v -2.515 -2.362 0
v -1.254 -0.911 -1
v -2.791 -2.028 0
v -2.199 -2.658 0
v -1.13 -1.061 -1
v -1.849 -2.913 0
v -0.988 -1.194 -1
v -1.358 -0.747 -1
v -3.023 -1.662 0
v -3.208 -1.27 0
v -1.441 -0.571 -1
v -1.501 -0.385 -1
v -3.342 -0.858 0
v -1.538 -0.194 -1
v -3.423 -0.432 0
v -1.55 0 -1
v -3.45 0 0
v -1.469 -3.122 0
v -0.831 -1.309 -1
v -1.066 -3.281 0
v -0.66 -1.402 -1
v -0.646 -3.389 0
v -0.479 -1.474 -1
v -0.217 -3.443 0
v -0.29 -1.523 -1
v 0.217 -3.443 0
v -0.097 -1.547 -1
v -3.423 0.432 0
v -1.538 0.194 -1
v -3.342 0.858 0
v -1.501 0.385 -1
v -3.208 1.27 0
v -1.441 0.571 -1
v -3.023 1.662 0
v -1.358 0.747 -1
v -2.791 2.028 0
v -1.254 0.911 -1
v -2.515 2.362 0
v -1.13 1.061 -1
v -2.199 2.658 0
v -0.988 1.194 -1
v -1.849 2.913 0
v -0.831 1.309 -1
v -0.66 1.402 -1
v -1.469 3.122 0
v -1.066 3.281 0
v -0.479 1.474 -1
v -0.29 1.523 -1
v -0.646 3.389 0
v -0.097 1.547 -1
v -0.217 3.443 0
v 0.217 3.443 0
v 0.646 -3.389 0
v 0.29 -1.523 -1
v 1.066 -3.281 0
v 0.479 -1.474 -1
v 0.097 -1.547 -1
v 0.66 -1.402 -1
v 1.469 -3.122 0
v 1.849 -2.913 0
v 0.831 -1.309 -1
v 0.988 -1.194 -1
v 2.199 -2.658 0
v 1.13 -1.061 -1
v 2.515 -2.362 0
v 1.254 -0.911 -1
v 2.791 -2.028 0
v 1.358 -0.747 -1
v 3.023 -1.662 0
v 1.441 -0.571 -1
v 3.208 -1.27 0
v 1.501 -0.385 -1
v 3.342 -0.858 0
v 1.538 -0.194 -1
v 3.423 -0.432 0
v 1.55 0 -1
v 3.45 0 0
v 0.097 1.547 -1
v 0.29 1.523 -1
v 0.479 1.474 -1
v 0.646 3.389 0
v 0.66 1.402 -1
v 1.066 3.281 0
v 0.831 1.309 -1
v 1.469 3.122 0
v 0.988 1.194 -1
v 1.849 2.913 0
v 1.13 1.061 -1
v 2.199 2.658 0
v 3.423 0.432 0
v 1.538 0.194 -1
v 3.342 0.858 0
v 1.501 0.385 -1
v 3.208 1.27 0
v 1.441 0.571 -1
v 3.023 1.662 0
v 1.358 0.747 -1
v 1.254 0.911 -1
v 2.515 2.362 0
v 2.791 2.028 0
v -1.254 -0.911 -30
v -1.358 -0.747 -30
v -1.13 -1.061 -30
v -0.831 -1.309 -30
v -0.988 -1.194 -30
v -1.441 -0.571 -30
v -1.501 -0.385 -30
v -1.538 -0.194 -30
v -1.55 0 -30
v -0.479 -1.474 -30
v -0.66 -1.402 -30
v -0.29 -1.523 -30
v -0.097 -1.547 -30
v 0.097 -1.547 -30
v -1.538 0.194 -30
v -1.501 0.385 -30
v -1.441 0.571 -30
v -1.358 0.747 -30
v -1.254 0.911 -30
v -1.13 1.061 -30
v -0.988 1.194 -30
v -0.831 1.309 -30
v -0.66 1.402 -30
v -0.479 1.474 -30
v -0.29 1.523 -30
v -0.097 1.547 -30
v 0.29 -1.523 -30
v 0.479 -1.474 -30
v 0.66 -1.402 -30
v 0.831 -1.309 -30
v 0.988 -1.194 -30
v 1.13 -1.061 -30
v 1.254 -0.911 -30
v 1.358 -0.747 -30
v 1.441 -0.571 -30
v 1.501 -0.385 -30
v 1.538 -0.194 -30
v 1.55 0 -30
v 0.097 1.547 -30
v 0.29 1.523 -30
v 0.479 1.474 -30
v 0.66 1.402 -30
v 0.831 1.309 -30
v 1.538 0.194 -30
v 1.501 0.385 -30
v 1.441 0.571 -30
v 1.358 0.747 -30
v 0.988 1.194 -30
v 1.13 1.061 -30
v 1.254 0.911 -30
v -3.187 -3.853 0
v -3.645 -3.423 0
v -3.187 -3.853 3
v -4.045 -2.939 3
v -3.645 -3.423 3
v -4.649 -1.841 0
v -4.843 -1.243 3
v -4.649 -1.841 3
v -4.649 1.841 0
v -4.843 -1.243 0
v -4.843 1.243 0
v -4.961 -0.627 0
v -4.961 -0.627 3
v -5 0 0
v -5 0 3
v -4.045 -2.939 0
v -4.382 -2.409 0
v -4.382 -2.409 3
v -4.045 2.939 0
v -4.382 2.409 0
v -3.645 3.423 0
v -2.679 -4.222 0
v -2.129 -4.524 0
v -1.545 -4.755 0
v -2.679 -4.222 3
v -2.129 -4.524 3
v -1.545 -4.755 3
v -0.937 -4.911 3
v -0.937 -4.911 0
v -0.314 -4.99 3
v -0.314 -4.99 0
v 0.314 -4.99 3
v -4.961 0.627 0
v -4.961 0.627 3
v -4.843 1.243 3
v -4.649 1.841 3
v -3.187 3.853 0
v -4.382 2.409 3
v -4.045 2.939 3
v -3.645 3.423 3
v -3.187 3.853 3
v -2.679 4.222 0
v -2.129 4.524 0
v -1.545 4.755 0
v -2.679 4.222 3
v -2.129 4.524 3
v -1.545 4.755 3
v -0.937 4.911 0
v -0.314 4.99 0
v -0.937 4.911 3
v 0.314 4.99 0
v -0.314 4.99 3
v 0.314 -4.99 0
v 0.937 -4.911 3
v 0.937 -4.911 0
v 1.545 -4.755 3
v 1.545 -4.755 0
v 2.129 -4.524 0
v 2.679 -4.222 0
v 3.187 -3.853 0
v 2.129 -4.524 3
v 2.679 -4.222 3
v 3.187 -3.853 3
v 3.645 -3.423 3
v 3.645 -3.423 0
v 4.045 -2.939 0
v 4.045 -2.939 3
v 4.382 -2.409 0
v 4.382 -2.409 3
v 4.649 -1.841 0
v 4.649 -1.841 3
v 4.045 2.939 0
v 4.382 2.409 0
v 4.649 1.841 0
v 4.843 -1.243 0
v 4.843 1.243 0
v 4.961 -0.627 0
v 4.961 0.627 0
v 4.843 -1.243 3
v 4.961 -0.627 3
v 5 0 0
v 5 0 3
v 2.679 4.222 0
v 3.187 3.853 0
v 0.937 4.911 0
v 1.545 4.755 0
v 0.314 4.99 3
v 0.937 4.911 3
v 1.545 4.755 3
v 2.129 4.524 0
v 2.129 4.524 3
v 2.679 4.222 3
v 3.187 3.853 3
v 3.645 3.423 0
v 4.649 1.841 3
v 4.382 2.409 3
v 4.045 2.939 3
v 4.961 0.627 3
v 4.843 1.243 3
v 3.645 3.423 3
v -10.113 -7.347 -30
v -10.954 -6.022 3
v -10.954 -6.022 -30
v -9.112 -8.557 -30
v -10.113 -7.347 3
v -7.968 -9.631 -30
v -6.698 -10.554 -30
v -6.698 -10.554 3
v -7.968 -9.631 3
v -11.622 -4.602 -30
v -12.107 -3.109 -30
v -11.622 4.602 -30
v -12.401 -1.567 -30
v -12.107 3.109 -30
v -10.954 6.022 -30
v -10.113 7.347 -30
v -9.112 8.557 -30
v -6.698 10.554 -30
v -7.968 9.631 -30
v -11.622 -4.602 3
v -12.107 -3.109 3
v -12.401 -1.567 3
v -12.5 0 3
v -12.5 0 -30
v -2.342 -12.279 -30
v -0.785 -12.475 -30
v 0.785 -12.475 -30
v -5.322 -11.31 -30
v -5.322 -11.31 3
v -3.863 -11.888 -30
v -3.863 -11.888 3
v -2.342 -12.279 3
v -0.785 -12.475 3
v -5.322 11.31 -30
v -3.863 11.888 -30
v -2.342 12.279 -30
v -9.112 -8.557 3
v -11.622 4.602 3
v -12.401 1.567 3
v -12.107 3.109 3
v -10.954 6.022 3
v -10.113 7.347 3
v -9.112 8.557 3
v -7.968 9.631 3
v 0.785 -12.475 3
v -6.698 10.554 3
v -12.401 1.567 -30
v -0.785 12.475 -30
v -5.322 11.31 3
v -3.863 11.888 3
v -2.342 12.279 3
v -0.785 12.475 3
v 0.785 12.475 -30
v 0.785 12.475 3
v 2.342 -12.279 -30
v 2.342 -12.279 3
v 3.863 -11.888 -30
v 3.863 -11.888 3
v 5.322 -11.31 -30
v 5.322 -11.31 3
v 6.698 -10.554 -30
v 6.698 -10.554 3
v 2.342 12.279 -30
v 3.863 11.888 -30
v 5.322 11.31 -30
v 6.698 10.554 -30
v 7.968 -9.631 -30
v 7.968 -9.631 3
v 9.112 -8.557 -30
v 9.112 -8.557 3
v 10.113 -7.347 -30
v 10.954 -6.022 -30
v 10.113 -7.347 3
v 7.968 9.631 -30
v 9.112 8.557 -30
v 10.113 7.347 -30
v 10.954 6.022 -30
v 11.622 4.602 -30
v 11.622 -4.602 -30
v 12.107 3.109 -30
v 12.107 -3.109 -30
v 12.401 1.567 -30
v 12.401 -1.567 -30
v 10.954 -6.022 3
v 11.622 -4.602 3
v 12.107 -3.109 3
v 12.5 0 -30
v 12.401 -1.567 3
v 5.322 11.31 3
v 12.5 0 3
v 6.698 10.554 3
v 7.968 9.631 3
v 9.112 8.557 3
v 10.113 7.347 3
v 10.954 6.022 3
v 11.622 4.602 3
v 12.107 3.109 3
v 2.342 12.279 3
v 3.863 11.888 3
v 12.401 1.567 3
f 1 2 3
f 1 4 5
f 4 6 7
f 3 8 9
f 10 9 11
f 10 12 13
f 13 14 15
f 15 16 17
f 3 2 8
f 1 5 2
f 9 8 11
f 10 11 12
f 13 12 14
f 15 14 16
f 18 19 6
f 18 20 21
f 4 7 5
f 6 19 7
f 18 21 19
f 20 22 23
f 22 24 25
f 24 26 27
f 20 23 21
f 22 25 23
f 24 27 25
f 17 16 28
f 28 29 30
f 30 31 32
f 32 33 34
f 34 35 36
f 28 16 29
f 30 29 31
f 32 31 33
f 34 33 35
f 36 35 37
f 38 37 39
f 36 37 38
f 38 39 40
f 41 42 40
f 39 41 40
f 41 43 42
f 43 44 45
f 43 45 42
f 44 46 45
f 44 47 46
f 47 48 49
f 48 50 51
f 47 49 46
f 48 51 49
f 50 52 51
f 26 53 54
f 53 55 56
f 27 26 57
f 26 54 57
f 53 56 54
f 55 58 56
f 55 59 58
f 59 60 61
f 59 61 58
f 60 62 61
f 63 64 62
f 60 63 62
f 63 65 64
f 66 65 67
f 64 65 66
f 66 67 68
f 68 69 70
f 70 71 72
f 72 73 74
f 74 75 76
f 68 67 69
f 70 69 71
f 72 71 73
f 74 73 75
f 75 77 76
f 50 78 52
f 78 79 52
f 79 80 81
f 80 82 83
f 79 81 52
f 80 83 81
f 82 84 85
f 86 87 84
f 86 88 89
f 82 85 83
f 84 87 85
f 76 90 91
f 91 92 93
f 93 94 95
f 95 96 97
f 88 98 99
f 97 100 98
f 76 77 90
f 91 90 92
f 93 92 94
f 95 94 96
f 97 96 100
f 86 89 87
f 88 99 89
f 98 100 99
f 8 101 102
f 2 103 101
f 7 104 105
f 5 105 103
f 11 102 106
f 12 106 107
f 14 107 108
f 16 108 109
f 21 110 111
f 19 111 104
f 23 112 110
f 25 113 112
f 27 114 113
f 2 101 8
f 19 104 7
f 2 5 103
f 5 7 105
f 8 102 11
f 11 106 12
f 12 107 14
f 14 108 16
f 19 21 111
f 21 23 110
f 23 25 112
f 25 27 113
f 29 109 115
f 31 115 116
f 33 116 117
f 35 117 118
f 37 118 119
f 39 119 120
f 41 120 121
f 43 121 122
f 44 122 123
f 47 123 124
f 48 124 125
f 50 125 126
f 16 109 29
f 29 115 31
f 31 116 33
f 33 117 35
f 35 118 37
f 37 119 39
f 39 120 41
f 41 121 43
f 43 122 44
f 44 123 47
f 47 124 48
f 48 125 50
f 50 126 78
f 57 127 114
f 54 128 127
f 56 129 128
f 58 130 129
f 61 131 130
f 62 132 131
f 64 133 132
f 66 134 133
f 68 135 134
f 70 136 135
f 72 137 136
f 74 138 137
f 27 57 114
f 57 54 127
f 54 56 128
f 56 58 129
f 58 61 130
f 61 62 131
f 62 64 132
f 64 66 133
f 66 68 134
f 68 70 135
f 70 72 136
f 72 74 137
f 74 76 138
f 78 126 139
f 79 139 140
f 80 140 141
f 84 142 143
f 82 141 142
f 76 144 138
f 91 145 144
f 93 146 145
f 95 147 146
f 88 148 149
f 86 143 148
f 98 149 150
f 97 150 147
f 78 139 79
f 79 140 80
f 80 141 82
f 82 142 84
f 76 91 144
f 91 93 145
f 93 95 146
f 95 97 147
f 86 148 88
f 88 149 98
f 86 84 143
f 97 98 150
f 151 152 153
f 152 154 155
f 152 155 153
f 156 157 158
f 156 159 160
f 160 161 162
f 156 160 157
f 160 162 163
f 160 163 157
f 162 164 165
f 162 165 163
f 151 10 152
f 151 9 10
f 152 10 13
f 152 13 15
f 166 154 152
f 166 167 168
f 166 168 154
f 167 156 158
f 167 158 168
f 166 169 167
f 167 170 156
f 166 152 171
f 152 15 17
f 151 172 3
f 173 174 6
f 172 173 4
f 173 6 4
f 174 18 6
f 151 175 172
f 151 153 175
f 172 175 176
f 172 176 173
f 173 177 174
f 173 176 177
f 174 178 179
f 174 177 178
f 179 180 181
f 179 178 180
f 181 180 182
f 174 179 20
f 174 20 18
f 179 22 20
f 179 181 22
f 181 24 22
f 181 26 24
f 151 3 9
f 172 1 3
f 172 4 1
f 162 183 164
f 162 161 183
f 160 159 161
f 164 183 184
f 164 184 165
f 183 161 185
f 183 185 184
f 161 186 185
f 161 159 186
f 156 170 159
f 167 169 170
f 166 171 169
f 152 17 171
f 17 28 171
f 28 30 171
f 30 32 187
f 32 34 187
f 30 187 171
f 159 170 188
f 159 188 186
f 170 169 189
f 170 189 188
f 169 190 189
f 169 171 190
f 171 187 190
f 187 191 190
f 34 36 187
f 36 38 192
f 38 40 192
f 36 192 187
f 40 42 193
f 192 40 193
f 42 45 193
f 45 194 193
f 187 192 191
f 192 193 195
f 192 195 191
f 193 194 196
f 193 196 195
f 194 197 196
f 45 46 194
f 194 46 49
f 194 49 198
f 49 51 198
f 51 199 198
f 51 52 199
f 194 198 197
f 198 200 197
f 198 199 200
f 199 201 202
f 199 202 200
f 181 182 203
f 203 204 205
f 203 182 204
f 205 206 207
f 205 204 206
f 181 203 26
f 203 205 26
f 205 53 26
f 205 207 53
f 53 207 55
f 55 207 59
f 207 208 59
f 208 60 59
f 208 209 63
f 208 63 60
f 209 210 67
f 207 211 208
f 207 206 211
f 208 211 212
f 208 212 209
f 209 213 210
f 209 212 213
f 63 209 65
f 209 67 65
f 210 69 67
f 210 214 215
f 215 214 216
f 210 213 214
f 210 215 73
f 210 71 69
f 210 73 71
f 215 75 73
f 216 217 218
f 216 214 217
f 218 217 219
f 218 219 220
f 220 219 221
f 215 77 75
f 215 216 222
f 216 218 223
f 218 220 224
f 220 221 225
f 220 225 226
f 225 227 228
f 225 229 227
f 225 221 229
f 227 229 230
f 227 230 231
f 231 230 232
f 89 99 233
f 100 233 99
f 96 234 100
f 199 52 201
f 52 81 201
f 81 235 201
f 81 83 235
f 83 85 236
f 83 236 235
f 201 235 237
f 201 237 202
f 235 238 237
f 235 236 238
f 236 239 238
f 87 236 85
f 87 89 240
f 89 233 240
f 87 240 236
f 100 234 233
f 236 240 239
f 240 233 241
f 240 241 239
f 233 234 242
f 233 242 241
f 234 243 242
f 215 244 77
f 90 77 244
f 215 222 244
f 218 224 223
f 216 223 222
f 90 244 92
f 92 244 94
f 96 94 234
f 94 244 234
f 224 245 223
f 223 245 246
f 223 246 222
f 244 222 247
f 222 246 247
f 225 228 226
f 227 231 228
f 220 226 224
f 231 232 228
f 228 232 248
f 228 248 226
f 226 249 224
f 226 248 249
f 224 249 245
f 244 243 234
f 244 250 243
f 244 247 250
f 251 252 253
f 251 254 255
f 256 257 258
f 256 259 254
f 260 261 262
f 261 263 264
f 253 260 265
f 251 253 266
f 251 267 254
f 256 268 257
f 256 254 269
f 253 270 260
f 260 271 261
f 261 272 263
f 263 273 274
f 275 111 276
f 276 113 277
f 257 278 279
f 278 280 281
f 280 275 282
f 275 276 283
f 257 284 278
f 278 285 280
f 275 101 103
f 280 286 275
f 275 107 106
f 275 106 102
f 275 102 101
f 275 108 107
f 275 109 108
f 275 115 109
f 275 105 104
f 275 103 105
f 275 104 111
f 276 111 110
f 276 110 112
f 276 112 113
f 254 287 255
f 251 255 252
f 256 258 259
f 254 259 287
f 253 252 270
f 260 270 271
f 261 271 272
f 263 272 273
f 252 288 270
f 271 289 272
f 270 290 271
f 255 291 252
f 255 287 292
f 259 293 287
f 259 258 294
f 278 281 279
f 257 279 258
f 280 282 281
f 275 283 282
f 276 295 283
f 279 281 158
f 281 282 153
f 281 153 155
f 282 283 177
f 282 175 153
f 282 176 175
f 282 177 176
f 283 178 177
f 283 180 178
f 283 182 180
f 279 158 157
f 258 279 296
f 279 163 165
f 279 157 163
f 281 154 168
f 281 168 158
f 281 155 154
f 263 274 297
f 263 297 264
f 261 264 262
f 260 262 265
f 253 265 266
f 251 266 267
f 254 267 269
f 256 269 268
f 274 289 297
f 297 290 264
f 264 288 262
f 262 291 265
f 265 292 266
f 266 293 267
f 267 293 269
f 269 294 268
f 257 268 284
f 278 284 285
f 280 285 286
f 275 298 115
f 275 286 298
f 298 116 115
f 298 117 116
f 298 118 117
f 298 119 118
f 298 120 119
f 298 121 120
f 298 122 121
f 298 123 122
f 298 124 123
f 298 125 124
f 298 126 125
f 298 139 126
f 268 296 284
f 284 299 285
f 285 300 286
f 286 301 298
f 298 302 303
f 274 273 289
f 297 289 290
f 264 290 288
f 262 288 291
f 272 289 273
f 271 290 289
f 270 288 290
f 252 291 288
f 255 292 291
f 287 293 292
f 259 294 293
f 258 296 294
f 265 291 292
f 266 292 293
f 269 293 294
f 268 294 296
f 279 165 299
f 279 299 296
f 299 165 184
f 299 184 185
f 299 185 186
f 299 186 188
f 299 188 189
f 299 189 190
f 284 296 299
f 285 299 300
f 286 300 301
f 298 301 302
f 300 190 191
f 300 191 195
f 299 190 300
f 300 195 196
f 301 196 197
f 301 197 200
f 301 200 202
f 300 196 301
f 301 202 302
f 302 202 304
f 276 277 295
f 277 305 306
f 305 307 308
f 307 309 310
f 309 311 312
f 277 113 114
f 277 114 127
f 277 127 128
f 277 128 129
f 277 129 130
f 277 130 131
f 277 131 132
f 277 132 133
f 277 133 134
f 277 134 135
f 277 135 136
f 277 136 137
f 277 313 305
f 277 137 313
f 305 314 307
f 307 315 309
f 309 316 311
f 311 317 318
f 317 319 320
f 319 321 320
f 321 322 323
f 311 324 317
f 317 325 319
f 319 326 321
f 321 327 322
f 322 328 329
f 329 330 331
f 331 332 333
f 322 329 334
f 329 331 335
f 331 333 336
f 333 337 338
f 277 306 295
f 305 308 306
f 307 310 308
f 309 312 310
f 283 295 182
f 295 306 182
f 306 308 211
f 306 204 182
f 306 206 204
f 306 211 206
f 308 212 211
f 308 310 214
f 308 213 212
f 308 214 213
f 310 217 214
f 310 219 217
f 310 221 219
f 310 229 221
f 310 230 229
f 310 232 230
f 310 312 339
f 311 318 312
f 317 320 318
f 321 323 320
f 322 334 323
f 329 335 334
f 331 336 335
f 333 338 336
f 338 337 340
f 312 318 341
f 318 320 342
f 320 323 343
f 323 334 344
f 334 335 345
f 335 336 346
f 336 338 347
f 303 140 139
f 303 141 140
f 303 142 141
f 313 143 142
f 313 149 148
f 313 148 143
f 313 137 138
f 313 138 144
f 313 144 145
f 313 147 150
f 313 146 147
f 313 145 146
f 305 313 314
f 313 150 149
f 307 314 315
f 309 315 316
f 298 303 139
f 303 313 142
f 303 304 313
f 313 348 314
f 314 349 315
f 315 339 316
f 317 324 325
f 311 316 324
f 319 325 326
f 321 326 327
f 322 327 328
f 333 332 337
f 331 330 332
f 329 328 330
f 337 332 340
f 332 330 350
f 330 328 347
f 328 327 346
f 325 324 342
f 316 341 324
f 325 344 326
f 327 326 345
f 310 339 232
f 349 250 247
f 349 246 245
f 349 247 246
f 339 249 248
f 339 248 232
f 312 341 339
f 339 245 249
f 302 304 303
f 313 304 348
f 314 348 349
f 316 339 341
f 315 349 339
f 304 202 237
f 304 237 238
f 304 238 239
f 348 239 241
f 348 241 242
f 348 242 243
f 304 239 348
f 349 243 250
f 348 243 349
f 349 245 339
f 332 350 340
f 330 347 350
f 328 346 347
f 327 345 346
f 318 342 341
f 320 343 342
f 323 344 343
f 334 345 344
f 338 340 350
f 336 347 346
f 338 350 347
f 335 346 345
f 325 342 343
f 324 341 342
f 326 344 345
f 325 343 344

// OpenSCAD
$fn = 50;

difference() {
	union() {
		translate(v = [0, 0, -30.0]) {
			cylinder(h = 33, r = 12.5);
		}
	}
	union() {
		translate(v = [0, 0, 0]) {
			rotate(a = [0, 0, 0]) {
				difference() {
					union() {
						translate(v = [0, 0, -33.0]) {
							cylinder(h = 33, r = 1.25);
						}
						translate(v = [0, 0, -1.0]) {
							cylinder(h = 1.0, r1 = 1.55, r2 = 3.45);
						}
						translate(v = [0, 0, -33.0]) {
							cylinder(h = 33, r = 1.55);
						}
						translate(v = [0, 0, -33.0]) {
							cylinder(h = 33, r = 1.25);
						}
					}
					union();
				}
			}
		}
		#cylinder(h = 3, r = 5.0);
	}
}
